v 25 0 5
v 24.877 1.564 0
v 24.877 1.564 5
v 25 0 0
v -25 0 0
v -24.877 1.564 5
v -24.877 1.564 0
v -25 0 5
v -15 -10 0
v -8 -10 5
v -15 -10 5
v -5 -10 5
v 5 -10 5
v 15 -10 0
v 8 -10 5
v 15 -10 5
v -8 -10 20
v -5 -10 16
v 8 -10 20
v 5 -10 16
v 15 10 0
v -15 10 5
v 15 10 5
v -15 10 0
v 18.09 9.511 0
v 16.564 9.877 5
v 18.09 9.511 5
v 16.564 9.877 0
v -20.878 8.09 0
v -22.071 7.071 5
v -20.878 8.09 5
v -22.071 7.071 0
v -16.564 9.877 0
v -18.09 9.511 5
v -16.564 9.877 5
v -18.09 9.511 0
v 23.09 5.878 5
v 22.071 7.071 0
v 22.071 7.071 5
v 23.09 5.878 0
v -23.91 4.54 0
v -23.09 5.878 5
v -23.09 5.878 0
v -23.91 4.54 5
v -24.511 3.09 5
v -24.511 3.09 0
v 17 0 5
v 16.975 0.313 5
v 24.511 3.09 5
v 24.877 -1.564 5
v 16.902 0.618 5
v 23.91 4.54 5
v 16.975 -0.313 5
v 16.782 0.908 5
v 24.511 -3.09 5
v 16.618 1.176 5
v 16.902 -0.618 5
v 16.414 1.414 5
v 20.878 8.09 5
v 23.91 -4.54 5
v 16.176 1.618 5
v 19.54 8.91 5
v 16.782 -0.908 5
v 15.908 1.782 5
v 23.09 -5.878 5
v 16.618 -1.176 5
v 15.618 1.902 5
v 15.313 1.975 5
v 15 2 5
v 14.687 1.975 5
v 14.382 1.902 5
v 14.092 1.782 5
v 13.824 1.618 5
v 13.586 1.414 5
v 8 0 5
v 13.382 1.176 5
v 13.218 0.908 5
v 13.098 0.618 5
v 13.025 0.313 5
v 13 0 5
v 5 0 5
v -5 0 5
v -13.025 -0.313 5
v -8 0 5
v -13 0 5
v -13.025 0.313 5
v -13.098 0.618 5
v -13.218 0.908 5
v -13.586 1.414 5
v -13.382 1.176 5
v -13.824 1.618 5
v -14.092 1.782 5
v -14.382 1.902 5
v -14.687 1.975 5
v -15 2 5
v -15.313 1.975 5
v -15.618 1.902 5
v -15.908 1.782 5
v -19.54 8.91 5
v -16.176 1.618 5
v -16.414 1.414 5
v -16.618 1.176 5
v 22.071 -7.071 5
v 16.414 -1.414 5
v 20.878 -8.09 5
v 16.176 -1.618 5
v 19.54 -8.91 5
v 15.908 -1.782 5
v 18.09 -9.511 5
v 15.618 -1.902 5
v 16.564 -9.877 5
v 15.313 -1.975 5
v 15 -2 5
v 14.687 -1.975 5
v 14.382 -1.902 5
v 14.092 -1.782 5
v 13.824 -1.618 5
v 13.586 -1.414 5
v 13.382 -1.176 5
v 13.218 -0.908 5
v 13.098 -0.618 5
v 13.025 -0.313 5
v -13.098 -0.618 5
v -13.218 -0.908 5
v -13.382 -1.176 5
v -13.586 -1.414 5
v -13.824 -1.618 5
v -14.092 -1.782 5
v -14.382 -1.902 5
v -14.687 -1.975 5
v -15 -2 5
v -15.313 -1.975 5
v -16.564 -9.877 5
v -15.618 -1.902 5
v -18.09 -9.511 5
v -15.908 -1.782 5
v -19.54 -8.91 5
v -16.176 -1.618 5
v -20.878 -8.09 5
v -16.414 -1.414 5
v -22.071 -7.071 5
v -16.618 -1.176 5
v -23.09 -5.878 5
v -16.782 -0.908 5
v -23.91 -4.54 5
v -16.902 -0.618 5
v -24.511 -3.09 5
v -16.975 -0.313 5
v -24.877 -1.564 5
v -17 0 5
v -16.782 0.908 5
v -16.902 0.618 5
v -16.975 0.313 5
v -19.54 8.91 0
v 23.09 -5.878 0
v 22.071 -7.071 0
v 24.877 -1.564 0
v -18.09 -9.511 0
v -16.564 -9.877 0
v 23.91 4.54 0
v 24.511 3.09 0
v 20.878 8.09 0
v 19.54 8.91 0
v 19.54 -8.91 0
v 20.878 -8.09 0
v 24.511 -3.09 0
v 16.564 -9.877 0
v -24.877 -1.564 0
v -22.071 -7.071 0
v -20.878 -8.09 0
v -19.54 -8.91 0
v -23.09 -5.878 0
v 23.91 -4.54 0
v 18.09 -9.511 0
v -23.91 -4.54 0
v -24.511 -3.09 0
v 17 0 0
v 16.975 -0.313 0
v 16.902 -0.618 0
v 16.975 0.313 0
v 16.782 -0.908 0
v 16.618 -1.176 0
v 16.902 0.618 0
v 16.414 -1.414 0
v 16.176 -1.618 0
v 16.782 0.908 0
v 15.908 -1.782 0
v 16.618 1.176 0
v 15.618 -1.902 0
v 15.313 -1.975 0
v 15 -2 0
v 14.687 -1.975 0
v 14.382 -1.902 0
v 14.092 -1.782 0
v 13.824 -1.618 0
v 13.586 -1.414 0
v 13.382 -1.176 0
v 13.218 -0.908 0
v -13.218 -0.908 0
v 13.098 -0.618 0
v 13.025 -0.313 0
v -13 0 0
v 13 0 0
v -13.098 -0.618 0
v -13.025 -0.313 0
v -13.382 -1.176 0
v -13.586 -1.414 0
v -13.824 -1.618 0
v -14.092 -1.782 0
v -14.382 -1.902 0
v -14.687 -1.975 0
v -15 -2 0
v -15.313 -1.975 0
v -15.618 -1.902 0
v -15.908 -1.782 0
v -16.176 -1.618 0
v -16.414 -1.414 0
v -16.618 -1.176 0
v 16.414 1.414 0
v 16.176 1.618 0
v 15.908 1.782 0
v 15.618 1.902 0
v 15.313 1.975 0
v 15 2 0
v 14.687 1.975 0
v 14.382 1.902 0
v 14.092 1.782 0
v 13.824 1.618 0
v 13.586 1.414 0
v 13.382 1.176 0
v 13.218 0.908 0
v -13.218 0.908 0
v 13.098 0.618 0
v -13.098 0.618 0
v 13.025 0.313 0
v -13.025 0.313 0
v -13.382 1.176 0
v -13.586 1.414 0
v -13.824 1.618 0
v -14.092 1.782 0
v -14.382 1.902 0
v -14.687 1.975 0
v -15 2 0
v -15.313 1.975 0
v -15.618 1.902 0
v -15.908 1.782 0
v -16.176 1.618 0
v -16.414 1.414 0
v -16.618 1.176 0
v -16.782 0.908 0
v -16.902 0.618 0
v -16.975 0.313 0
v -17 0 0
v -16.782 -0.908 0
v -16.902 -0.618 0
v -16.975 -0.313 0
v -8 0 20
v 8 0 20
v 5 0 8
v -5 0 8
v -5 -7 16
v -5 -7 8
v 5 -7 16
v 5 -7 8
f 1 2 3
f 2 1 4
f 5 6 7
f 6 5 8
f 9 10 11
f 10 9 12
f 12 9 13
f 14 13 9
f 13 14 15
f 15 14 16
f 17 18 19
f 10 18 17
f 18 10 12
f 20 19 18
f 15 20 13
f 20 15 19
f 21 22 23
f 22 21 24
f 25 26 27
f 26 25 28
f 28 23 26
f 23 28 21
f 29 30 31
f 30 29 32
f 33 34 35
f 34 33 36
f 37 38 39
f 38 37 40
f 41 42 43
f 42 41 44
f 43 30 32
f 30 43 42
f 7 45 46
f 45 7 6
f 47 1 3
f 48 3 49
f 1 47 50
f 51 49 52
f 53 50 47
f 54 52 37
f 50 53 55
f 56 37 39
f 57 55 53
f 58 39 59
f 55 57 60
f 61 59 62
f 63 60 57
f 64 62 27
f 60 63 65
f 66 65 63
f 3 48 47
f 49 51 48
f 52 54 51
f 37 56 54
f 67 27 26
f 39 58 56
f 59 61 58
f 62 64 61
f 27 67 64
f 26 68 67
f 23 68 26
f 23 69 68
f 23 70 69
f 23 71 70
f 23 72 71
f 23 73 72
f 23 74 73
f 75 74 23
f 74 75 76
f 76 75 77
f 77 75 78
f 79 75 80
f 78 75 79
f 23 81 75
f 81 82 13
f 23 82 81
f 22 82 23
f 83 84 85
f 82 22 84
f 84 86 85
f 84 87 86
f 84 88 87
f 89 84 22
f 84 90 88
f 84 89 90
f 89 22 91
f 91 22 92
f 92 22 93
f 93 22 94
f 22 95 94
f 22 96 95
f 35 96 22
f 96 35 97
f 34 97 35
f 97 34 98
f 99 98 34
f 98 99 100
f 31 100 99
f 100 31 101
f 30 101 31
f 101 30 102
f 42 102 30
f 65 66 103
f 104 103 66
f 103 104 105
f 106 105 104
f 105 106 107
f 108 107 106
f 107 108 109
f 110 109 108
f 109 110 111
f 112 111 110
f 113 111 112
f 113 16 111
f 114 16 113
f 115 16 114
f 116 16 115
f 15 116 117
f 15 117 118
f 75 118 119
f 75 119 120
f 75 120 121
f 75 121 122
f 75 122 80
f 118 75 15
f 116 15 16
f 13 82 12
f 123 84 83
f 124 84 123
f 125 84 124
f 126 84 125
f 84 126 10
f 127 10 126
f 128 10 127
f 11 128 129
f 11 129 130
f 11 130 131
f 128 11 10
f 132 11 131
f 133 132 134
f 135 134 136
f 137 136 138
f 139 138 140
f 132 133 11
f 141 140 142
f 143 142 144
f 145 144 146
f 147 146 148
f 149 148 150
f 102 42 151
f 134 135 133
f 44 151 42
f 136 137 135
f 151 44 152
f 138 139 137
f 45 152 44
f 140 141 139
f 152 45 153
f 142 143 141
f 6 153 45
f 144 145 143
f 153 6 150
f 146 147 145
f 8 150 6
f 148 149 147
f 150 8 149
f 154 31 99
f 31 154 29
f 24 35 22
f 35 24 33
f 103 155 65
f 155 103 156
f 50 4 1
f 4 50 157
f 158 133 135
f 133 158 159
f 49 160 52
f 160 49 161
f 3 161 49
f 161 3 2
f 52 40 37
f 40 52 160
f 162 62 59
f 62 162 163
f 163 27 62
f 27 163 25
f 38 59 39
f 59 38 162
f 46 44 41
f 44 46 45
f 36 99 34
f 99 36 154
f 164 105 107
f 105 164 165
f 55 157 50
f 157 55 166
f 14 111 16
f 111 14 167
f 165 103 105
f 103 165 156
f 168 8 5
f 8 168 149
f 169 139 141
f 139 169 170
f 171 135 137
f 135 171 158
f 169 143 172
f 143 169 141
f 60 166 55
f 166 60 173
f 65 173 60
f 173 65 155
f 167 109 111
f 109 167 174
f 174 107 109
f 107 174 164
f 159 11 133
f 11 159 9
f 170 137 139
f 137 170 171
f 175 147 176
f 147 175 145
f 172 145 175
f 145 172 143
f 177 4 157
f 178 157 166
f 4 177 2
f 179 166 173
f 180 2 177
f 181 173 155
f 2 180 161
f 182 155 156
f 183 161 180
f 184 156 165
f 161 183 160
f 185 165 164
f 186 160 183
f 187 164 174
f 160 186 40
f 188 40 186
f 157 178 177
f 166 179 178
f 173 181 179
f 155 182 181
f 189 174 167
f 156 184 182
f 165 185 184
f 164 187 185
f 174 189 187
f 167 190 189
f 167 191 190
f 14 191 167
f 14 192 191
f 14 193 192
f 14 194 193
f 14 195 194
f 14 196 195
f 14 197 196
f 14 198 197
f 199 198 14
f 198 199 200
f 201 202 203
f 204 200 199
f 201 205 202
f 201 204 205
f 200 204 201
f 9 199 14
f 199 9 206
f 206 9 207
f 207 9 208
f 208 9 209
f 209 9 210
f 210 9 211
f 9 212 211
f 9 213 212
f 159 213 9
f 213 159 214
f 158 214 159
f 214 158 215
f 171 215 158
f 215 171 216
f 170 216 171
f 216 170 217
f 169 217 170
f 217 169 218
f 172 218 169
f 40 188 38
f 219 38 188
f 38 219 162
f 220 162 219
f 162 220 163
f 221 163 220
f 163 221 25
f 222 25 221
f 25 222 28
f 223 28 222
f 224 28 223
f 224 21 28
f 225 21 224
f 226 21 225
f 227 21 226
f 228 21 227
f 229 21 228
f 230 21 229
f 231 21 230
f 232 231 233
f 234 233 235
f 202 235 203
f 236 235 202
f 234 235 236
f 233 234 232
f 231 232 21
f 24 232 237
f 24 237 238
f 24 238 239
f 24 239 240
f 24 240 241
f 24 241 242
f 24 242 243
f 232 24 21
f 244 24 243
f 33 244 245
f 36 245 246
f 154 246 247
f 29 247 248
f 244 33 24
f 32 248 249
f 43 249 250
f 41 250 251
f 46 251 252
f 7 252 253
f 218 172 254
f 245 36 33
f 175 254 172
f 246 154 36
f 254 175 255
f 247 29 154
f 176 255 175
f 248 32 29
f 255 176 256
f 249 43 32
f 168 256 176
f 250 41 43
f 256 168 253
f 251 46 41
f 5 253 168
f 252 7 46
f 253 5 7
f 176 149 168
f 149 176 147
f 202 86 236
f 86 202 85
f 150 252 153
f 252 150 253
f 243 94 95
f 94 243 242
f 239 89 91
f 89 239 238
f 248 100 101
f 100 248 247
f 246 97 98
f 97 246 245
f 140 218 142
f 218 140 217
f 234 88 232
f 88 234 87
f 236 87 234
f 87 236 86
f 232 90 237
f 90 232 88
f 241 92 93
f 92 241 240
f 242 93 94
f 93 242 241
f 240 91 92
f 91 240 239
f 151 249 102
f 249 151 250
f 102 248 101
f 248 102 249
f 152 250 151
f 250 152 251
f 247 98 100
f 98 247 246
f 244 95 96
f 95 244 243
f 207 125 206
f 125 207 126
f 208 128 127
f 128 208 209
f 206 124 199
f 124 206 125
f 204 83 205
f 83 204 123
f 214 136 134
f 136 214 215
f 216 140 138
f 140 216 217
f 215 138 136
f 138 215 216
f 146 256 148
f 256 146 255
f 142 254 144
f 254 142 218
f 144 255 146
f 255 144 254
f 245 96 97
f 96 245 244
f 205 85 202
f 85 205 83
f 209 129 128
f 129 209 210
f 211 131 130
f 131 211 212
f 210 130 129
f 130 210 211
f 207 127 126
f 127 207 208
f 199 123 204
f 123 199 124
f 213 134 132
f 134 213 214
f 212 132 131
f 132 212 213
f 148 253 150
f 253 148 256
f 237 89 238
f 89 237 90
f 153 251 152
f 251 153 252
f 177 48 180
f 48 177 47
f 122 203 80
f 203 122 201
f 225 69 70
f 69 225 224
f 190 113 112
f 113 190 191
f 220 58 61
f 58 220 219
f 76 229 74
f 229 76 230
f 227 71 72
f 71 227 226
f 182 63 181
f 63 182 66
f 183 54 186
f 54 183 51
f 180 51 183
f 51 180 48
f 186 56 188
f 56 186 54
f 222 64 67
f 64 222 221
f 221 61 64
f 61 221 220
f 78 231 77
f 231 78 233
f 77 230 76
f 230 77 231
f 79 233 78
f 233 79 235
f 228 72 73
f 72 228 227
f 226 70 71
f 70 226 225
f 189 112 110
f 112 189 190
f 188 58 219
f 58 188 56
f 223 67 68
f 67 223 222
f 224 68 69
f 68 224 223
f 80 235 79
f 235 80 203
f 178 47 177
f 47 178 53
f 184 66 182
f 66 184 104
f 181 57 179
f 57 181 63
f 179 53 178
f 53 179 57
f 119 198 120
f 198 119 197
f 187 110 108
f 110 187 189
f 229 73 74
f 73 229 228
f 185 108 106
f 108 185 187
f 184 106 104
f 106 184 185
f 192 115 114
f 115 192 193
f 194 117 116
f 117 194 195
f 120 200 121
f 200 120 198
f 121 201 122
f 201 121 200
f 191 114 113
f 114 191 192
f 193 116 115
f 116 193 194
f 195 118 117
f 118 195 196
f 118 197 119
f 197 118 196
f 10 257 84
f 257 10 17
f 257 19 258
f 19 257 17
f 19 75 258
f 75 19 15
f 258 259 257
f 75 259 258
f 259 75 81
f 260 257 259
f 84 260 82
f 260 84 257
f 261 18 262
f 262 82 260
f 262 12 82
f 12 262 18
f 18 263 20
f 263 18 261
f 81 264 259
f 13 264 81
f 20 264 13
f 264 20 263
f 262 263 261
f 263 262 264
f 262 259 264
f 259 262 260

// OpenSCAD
$fn=40;

screw_diameter = 4;
hole_distance = 30;

base_depth = 5;
base_height = 10;
base_width = 20;

pedestal_width = 16;
pedestal_height = 20;
pedestal_depth = 10;

sensor_height = 16;
sensor_width = 10;
sensor_depth = 3;

union() {
    
    difference() {
        //pedestal
        translate([-pedestal_width/2,-base_width/2,0]) cube([pedestal_width,pedestal_depth,pedestal_height]);
        translate([-sensor_width/2,-base_width/2,0]) cube([sensor_width,sensor_depth,sensor_height]);
        translate([-sensor_width/2,-base_width/2,base_depth]) cube([sensor_width,base_width,sensor_depth]);
    }
    
    //base with holes
    difference() {
        hull() {
            translate([hole_distance/2,0,0]) cylinder(r=base_width/2,h= base_depth); 
            translate([-hole_distance/2,0,0]) cylinder(r=base_width/2,h=base_depth); 
        }
        translate([-hole_distance/2,0,0]) cylinder( r2=screw_diameter/2, r1=screw_diameter/2, h=base_depth);
        translate([hole_distance/2,0,0]) cylinder( r2=screw_diameter/2, r1=screw_diameter/2, h=base_depth);
    }
}
